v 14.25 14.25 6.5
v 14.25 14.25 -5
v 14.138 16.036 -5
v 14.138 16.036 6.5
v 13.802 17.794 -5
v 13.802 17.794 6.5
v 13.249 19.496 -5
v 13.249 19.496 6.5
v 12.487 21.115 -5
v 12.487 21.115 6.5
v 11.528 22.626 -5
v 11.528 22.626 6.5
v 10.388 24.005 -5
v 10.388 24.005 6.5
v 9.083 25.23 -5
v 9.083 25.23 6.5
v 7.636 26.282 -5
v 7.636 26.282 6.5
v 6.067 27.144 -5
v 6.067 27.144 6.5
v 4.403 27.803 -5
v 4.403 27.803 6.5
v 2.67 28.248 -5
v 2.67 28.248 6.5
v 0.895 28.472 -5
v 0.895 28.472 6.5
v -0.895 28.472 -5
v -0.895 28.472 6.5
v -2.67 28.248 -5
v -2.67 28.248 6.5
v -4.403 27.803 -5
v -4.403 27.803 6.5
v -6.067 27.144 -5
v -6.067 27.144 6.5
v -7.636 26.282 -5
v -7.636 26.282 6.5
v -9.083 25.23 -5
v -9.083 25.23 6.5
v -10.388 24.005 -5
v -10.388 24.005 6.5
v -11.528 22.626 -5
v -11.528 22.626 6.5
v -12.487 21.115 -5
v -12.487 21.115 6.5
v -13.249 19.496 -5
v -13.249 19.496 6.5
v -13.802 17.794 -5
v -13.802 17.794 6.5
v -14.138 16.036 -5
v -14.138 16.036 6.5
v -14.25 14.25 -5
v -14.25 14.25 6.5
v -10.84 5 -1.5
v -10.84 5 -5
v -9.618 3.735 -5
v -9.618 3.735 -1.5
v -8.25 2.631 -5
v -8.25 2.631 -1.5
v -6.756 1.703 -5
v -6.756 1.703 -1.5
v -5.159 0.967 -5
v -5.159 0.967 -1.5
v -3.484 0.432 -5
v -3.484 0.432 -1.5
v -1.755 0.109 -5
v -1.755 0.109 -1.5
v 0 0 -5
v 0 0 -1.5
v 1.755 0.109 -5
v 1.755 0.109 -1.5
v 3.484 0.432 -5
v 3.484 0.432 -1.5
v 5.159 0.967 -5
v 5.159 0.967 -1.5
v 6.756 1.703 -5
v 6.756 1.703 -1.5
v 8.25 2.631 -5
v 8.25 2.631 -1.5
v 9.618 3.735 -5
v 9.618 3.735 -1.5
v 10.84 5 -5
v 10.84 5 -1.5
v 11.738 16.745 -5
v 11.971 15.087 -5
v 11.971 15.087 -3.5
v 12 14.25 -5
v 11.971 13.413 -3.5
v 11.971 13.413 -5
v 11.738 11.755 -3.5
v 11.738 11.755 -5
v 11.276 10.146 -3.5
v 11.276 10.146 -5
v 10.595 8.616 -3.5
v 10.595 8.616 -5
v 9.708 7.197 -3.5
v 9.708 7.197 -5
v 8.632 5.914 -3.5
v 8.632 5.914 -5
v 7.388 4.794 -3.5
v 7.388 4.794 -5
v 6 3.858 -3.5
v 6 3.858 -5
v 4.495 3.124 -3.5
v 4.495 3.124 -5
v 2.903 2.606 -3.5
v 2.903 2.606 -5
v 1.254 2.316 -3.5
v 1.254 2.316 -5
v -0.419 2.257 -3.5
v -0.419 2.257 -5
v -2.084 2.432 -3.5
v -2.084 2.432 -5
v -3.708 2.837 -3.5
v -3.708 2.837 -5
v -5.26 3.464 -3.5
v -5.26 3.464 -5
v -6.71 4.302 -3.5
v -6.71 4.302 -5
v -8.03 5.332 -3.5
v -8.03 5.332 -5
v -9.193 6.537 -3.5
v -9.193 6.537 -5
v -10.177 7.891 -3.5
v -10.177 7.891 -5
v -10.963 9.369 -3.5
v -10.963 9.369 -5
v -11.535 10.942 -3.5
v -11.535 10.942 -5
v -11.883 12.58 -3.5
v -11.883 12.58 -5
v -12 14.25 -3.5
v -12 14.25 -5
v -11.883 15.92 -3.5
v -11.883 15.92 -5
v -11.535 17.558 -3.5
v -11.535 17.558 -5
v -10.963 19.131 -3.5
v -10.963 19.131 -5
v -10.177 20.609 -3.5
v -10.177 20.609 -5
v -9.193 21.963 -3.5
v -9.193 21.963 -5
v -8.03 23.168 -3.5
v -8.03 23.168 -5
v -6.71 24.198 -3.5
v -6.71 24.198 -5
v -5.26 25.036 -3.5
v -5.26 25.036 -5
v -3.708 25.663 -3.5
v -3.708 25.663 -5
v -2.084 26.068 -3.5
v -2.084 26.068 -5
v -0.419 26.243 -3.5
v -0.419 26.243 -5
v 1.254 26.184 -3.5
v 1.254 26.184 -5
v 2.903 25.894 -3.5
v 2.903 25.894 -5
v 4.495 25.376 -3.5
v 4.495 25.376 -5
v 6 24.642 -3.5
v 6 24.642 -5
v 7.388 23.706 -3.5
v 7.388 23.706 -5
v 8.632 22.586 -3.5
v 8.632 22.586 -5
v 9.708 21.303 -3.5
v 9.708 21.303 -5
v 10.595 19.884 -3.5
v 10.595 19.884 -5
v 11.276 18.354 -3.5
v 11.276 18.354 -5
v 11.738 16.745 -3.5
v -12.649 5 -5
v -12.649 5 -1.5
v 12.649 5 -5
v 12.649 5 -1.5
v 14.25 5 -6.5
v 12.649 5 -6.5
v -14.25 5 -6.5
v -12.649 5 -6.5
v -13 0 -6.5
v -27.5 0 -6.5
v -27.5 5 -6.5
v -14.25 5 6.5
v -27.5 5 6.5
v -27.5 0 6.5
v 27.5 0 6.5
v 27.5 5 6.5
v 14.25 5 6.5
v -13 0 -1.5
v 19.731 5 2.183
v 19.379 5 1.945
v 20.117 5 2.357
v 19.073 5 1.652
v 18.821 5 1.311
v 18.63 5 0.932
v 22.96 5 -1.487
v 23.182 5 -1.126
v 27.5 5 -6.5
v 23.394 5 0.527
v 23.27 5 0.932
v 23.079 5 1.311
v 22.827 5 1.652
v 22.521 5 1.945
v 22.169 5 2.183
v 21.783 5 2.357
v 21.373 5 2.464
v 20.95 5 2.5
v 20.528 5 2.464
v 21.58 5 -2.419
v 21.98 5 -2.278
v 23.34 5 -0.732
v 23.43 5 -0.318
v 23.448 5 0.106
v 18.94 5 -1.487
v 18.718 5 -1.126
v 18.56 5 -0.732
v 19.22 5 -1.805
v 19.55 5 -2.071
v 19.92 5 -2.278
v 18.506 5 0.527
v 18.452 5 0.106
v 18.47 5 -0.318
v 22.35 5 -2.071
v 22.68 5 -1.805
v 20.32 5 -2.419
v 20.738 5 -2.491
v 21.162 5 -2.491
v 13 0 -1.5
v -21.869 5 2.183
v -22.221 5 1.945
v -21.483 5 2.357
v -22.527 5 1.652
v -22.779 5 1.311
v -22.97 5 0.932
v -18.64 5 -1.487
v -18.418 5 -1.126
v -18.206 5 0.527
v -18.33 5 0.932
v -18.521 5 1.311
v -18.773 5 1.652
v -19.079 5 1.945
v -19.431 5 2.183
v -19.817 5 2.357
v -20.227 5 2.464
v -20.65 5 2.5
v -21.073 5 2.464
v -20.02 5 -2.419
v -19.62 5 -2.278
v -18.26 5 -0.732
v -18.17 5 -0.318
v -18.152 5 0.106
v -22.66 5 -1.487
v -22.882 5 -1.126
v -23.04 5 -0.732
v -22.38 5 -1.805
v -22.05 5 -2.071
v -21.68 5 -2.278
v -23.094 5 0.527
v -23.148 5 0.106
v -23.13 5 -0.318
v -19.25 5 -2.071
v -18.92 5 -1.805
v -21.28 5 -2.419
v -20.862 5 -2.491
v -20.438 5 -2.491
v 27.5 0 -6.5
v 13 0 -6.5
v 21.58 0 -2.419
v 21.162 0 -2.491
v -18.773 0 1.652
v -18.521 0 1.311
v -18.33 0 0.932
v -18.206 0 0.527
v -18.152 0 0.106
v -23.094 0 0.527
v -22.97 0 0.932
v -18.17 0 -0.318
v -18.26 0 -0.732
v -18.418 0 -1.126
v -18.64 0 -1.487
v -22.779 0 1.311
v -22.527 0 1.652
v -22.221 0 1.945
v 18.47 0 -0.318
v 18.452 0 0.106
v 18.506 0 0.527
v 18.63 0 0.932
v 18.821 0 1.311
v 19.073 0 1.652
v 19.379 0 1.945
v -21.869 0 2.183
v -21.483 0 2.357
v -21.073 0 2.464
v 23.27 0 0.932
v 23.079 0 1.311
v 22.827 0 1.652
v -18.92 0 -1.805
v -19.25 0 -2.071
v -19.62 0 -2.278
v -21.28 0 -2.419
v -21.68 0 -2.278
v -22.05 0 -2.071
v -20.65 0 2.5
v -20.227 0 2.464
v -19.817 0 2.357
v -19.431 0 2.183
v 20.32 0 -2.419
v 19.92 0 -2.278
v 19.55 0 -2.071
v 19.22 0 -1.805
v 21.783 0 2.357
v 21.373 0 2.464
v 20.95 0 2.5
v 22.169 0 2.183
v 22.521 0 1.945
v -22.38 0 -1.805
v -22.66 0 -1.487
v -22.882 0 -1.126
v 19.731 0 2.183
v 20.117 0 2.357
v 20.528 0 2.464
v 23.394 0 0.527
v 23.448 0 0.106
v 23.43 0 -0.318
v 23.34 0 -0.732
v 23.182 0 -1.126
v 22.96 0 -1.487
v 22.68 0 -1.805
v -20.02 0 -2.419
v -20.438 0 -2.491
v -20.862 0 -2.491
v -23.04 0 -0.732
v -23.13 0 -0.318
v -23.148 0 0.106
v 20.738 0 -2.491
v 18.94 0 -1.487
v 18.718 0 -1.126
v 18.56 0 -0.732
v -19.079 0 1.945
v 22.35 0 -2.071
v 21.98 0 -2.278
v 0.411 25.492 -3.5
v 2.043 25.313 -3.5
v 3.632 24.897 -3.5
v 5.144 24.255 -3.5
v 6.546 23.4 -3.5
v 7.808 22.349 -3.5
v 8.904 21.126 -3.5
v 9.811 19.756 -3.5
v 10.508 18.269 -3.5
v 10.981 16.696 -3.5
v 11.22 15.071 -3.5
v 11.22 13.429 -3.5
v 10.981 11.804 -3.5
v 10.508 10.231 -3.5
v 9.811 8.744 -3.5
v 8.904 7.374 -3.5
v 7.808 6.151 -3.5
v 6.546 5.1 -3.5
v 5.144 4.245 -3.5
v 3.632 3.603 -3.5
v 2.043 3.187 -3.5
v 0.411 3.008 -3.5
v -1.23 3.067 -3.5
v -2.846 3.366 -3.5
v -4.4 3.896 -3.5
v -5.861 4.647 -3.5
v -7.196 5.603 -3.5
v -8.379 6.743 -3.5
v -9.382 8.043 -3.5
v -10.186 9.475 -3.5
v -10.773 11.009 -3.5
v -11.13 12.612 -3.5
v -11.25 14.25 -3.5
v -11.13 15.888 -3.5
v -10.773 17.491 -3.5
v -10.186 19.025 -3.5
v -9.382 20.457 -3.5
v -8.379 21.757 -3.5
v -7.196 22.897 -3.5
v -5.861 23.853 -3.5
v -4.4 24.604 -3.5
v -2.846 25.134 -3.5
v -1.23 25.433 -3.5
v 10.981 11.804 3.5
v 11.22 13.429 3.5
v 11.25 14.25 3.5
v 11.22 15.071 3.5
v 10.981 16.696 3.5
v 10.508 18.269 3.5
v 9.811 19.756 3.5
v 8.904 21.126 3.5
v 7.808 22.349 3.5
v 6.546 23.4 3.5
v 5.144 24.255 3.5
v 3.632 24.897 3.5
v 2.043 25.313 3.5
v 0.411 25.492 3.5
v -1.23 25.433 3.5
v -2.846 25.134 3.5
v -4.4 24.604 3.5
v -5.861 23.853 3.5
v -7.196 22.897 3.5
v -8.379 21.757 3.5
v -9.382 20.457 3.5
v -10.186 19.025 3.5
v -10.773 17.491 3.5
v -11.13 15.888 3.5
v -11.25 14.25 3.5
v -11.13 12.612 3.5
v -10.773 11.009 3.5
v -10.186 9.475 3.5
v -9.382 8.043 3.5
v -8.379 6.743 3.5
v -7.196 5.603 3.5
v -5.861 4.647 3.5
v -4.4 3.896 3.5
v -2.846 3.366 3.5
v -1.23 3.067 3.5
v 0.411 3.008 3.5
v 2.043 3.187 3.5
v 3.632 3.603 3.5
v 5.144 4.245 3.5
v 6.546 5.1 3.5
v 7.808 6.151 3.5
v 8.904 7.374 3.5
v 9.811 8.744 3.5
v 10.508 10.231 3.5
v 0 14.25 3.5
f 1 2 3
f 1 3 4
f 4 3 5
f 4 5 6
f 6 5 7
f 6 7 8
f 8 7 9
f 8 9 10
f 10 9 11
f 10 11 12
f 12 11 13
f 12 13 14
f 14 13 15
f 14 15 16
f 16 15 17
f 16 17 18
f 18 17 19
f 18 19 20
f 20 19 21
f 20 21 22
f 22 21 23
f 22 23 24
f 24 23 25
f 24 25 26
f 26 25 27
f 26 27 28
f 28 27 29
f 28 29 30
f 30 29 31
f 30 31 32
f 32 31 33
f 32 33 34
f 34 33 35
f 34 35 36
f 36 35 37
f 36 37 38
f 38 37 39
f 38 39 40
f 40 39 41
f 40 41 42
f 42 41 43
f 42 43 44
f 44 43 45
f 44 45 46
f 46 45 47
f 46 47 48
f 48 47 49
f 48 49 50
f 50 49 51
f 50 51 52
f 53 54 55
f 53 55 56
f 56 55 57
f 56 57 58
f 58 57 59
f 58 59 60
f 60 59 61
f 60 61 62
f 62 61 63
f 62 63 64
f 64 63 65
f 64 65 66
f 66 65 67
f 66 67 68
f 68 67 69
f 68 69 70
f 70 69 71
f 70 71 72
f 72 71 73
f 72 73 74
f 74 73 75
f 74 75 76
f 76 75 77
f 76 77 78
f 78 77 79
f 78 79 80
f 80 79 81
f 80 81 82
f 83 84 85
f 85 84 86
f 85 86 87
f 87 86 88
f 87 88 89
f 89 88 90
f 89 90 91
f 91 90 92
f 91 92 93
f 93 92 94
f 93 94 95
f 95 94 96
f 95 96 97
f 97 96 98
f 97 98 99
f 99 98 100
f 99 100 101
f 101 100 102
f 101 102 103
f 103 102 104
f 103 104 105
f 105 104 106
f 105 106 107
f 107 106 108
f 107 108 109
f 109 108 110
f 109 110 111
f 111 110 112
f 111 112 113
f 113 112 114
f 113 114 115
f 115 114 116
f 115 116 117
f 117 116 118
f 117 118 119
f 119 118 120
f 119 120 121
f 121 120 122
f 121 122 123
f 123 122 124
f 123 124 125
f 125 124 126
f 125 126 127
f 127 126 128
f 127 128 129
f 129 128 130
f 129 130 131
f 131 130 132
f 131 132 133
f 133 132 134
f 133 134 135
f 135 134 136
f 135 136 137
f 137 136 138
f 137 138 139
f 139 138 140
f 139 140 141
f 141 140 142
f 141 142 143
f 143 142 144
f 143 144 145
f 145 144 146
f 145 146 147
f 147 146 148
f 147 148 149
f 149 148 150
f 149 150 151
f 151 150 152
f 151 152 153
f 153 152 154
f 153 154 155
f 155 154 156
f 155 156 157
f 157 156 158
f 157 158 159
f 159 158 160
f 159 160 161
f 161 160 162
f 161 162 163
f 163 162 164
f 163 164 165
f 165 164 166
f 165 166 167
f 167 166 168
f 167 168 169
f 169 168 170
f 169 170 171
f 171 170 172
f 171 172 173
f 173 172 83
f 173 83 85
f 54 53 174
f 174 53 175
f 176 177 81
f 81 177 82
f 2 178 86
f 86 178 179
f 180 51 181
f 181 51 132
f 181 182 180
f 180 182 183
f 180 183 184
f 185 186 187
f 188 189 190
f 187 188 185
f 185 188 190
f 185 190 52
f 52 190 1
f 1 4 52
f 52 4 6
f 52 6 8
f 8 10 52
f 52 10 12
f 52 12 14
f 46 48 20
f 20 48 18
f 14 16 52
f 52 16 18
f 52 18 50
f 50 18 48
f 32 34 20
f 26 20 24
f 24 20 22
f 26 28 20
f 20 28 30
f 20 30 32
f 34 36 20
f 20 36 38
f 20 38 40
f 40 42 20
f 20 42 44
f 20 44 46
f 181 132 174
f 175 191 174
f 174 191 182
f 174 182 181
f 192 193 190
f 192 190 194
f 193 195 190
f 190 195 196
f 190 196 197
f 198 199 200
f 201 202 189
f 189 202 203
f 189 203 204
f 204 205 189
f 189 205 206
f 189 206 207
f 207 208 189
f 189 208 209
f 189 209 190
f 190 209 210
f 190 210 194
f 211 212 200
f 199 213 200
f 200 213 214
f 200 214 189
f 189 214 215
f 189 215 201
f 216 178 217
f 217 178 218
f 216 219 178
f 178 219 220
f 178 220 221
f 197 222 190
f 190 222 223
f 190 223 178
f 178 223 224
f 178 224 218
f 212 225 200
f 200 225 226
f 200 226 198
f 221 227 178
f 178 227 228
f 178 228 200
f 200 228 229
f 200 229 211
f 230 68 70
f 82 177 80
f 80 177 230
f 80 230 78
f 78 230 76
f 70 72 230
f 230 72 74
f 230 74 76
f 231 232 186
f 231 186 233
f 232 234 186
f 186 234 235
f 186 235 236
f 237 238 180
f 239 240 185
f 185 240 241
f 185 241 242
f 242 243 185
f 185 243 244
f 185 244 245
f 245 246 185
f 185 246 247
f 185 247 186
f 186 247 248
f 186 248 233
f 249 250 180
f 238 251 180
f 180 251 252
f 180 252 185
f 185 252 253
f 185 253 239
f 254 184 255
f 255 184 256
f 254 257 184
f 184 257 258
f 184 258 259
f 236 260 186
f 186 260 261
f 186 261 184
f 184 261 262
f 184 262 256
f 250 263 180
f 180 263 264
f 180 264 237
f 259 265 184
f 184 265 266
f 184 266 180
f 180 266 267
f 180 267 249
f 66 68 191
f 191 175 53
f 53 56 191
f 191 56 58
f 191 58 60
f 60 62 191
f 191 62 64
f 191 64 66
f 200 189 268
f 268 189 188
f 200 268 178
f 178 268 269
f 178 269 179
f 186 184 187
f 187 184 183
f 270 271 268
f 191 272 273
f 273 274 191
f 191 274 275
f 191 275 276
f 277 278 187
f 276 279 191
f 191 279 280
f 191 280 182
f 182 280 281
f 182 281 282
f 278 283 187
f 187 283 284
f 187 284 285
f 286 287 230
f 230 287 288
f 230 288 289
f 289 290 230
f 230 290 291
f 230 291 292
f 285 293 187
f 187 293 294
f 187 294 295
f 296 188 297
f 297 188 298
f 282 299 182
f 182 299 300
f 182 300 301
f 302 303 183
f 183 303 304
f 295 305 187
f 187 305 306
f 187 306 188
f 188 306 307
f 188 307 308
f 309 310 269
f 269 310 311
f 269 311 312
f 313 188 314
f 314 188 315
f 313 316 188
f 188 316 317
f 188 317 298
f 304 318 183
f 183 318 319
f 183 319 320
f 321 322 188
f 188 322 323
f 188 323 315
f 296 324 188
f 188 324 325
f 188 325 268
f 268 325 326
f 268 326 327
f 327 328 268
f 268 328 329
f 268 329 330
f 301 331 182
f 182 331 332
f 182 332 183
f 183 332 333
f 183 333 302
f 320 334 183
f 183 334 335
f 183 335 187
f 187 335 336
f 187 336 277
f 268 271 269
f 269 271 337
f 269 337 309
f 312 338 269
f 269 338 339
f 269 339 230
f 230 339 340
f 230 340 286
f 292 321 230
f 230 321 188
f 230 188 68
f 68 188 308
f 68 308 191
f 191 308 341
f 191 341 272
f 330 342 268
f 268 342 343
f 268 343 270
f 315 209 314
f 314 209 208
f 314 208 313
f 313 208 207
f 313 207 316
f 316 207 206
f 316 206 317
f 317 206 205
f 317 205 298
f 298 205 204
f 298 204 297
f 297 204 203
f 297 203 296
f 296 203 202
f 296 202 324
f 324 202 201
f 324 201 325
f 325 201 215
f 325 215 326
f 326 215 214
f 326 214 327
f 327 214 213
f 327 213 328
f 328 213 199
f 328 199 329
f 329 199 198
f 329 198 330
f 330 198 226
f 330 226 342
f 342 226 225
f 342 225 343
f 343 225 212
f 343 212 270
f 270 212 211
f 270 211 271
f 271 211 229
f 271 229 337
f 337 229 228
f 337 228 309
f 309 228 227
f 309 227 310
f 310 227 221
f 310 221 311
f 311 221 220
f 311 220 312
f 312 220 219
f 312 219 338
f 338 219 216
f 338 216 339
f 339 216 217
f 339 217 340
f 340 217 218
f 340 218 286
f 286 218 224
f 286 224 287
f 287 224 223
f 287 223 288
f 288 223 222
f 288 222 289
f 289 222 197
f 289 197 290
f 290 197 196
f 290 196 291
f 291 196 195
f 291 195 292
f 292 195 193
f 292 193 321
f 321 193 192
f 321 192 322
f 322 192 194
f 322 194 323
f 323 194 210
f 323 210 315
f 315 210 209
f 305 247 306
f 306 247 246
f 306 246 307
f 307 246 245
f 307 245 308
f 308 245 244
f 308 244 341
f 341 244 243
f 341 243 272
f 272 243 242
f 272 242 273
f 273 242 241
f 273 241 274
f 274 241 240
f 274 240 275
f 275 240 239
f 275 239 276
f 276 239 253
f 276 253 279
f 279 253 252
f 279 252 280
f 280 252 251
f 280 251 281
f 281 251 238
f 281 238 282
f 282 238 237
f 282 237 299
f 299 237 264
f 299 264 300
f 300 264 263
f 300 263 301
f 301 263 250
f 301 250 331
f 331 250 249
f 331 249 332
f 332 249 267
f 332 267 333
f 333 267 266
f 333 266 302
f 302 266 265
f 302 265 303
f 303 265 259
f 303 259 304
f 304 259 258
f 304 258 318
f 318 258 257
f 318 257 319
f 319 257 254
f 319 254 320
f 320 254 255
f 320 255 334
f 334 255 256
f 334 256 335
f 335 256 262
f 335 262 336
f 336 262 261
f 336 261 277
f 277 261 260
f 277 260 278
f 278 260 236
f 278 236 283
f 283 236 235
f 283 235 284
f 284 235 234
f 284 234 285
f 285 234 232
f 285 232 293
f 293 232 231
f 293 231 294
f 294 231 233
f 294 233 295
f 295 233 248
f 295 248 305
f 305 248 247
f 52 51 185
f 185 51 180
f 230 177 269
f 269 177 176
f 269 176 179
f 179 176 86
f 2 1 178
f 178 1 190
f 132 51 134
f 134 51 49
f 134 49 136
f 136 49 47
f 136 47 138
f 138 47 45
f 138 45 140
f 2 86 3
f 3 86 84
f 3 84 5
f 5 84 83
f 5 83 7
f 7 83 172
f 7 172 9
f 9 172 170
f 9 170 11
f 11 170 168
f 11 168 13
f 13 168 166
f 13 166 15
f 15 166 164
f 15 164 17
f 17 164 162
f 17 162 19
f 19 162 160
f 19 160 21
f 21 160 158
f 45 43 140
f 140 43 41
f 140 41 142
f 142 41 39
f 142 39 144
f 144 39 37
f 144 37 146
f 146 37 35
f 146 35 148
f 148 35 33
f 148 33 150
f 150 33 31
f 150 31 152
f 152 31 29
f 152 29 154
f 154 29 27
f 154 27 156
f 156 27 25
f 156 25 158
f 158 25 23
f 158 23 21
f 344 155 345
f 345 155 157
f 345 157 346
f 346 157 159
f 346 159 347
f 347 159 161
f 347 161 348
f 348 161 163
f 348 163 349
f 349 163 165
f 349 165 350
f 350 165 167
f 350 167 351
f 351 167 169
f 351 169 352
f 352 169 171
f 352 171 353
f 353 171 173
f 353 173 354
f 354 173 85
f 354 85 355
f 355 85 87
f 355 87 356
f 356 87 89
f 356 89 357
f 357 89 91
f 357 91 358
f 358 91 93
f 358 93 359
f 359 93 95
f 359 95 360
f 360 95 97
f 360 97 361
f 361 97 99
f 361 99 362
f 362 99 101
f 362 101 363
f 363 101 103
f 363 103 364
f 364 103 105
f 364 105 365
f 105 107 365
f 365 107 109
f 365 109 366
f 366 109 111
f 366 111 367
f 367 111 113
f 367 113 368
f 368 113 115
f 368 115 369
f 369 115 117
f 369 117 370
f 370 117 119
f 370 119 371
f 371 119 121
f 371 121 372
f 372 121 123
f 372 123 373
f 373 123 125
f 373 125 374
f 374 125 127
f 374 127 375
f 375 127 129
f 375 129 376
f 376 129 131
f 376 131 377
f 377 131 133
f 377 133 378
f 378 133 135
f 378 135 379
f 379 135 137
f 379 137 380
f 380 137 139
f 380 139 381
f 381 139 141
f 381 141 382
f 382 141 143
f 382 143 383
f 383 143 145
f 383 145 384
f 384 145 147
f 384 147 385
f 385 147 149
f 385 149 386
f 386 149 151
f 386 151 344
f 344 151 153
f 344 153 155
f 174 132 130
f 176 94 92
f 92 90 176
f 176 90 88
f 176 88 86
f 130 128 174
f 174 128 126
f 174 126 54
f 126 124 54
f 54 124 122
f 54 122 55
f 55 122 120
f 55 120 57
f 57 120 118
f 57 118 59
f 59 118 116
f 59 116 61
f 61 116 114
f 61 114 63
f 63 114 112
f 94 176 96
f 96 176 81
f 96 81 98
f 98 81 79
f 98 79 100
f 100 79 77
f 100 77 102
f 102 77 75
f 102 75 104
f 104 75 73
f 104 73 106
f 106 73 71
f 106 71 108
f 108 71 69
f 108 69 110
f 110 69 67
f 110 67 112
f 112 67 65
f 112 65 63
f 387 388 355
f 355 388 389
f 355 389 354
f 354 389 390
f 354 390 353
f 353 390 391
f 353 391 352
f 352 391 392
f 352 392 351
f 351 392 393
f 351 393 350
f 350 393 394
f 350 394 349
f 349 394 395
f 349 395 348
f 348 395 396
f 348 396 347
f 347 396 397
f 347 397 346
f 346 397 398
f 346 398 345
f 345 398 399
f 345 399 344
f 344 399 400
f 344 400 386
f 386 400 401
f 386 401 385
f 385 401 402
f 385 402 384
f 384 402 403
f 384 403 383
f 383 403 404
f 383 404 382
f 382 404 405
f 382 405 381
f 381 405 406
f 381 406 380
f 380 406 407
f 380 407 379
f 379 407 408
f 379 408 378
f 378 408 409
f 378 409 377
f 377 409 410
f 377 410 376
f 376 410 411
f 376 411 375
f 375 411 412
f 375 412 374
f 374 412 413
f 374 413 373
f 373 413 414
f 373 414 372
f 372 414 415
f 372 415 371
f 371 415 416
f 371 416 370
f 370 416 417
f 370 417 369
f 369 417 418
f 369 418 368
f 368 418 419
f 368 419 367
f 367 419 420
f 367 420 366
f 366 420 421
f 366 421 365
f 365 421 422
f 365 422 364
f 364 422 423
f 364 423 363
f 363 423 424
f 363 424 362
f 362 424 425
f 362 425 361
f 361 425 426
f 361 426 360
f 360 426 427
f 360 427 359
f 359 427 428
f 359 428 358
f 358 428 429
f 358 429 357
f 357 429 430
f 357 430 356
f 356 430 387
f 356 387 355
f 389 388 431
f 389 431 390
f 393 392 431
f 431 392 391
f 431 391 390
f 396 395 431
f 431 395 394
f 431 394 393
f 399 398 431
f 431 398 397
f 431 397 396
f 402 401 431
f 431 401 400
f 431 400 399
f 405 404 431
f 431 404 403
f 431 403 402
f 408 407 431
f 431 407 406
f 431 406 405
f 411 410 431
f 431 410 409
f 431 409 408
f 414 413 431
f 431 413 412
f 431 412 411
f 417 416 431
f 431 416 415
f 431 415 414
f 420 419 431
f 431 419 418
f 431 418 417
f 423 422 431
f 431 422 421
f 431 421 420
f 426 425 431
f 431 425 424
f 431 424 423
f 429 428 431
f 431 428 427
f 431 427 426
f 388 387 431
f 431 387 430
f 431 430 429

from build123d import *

# Parameters (mm, degrees)
CROQUIS1_W                   = 55
CROQUIS1_H                   = 13
SALIENTE_EXTRUIR1_DEPTH      = 5
CROQUIS2_R                   = 2.5
CORTAR_EXTRUIR1_DEPTH        = 5
CROQUIS3_W                   = 26
CROQUIS3_H                   = 5
CORTAR_EXTRUIR2_DEPTH        = 5
SALIENTE_EXTRUIR2_DEPTH      = 5
SALIENTE_EXTRUIR2_DEPTH_BACK = 8
CROQUIS4_R                   = 14.25
CROQUIS5_R                   = 12
CORTAR_EXTRUIR3_DEPTH        = 1
CORTAR_EXTRUIR4_START        = -1
CROQUIS6_R                   = 12
CORTAR_EXTRUIR4_DEPTH        = 1
SALIENTE_EXTRUIR3_DEPTH      = 1
SALIENTE_EXTRUIR3_DEPTH_BACK = 12
SALIENTE_EXTRUIR4_DEPTH      = 13
CROQUIS9_R                   = 11
CORTAR_EXTRUIR5_DEPTH        = 13
CROQUIS10_W                  = 30.554627906
CROQUIS10_H                  = 17.725009208
CORTAR_EXTRUIR6_DEPTH        = 1.5
CROQUIS11_W                  = 31.627471091
CROQUIS11_H                  = 18.560833894
CORTAR_EXTRUIR7_DEPTH        = 1.5
CORTAR_EXTRUIR8_START        = -1.5
CROQUIS13_R                  = 12
CORTAR_EXTRUIR8_DEPTH        = 1.5
CROQUIS14_R                  = 12
CORTAR_EXTRUIR10_DEPTH       = 1.5
CORTAR_EXTRUIR11_START       = 5
CROQUIS15_R                  = 12
CORTAR_EXTRUIR11_DEPTH       = 5
CROQUIS16_R                  = 12
CORTAR_EXTRUIR12_DEPTH       = 5
CORTAR_EXTRUIR13_DEPTH       = 20
CORTAR_EXTRUIR14_DEPTH       = 36
CORTAR_EXTRUIR15_DEPTH       = 36
CORTAR_EXTRUIR16_DEPTH       = 23
CROQUIS22_R                  = 12
SALIENTE_EXTRUIR6_DEPTH      = 1.5
CROQUIS23_R                  = 14.25
SALIENTE_EXTRUIR7_DEPTH      = 1.5
SALIENTE_EXTRUIR9_DEPTH      = 5
SALIENTE_EXTRUIR10_DEPTH     = 5
SALIENTE_EXTRUIR11_START     = -1.5
SALIENTE_EXTRUIR11_DEPTH     = 1.5
SALIENTE_EXTRUIR12_START     = -1.5
SALIENTE_EXTRUIR12_DEPTH     = 1.5
SALIENTE_EXTRUIR13_START     = -10
CROQUIS30_R                  = 11.125
CROQUIS30_R_2                = 11
SALIENTE_EXTRUIR13_DEPTH     = 10
CROQUIS31_R                  = 11.125
CORTAR_EXTRUIR17_DEPTH       = 7
CROQUIS32_R                  = 11.25
CORTAR_EXTRUIR18_DEPTH       = 7


with BuildPart() as part:
    # Croquis1 → Saliente-Extruir1 (new body)
    with BuildSketch(Plane(origin=(0, 0, 0), x_dir=(1, 0, 0), z_dir=(0, 1, 0))):
        Rectangle(CROQUIS1_W, CROQUIS1_H)
    extrude(amount=SALIENTE_EXTRUIR1_DEPTH)

    # Croquis2 → Cortar-Extruir1 (cut)
    with BuildSketch(Plane(origin=(0, 5, 0), x_dir=(1, 0, 0), z_dir=(0, 1, 0))):
        with Locations(Location((-20.65, 0, 0), (0, 0, 270))):
            Circle(CROQUIS2_R)
        with Locations(Location((20.95, 0, 0), (0, 0, 270))):
            Circle(CROQUIS2_R)
    extrude(amount=-CORTAR_EXTRUIR1_DEPTH, mode=Mode.SUBTRACT)

    # Croquis3 → Cortar-Extruir2 (cut)
    with BuildSketch(Plane(origin=(0, 5, 0), x_dir=(1, 0, 0), z_dir=(0, 1, 0))):
        with Locations((0, 4)):
            Rectangle(CROQUIS3_W, CROQUIS3_H)
        with Locations((0, -4)):
            Rectangle(CROQUIS3_W, CROQUIS3_H)
    extrude(amount=-CORTAR_EXTRUIR2_DEPTH, mode=Mode.SUBTRACT)

    # Croquis4 → Saliente-Extruir2 (add, two sides: drawn at the far end of the back side and taken through both)
    with BuildSketch(Plane.XY.offset(1.5).offset(-SALIENTE_EXTRUIR2_DEPTH_BACK)):
        with Locations((0, 14.25)):
            Circle(CROQUIS4_R)
    extrude(amount=SALIENTE_EXTRUIR2_DEPTH + SALIENTE_EXTRUIR2_DEPTH_BACK)

    # Croquis5 → Cortar-Extruir3 (cut)
    with BuildSketch(Plane(origin=(0, 0, -6.5), x_dir=(-1, 0, 0), z_dir=(0, 0, -1))):
        with Locations((0, 14.25)):
            Circle(CROQUIS5_R)
    extrude(amount=-CORTAR_EXTRUIR3_DEPTH, mode=Mode.SUBTRACT)

    # Croquis6 → Cortar-Extruir4 (cut)
    with BuildSketch(Plane.XY.offset(6.5).offset(CORTAR_EXTRUIR4_START)):
        with Locations(Location((0, 14.25, 0), (0, 0, 180))):
            Circle(CROQUIS6_R)
    extrude(amount=CORTAR_EXTRUIR4_DEPTH, mode=Mode.SUBTRACT)

    # Croquis7 → Saliente-Extruir3 (add, two sides: drawn at the far end of the back side and taken through both)
    with BuildSketch(Plane.XY.offset(5.5).offset(-SALIENTE_EXTRUIR3_DEPTH_BACK)):
        Polygon((-12, 14.25), (-13, 0), (-14.25, 5), (-14.25, 14.25), align=None)
        Polygon((12, 14.25), (13, 0), (14.25, 5), (14.25, 14.25), align=None)
    extrude(amount=SALIENTE_EXTRUIR3_DEPTH + SALIENTE_EXTRUIR3_DEPTH_BACK)

    # Croquis8 → Saliente-Extruir4 (add)
    with BuildSketch(Plane.XY.offset(6.5)):
        Polygon((-10.839741694, 5), (-13.183687754, 5), (-12.649122807, 8.463153797), align=None)
        Polygon((12.728523578, 8.463153797), (12.649122807, 5), (10.839741694, 5), align=None)
    extrude(amount=-SALIENTE_EXTRUIR4_DEPTH)

    # Croquis9 → Cortar-Extruir5 (cut)
    with BuildSketch(Plane.XY.offset(5.5)):
        with Locations((0, 14.25)):
            Circle(CROQUIS9_R)
    extrude(amount=-CORTAR_EXTRUIR5_DEPTH, mode=Mode.SUBTRACT)

    # Croquis10 → Cortar-Extruir6 (cut)
    with BuildSketch(Plane(origin=(0, 0, -6.5), x_dir=(-1, 0, 0), z_dir=(0, 0, -1))):
        with Locations((1.027313953, 23.112504604)):
            Rectangle(CROQUIS10_W, CROQUIS10_H)
    extrude(amount=-CORTAR_EXTRUIR6_DEPTH, mode=Mode.SUBTRACT)

    # Croquis11 → Cortar-Extruir7 (cut)
    with BuildSketch(Plane.XY.offset(6.5)):
        with Locations((-1.563735546, 23.530416947)):
            Rectangle(CROQUIS11_W, CROQUIS11_H)
    extrude(amount=-CORTAR_EXTRUIR7_DEPTH, mode=Mode.SUBTRACT)

    # Croquis13 → Cortar-Extruir8 (cut)
    with BuildSketch(Plane.XY.offset(5).offset(CORTAR_EXTRUIR8_START)):
        with Locations((0, 14.25)):
            Circle(CROQUIS13_R)
    extrude(amount=CORTAR_EXTRUIR8_DEPTH, mode=Mode.SUBTRACT)

    # Croquis14 → Cortar-Extruir10 (cut)
    with BuildSketch(Plane(origin=(0, 0, -5), x_dir=(-1, 0, 0), z_dir=(0, 0, -1))):
        with Locations(Location((0, 14.25, 0), (0, 0, 180))):
            Circle(CROQUIS14_R)
    extrude(amount=-CORTAR_EXTRUIR10_DEPTH, mode=Mode.SUBTRACT)

    # Croquis15 → Cortar-Extruir11 (cut)
    with BuildSketch(Plane(origin=(0, 0, -3.5), x_dir=(-1, 0, 0), z_dir=(0, 0, -1)).offset(CORTAR_EXTRUIR11_START)):
        with Locations((0, 14.25)):
            Circle(CROQUIS15_R)
    extrude(amount=-CORTAR_EXTRUIR11_DEPTH, mode=Mode.SUBTRACT)

    # Croquis16 → Cortar-Extruir12 (cut)
    with BuildSketch(Plane.XY.offset(3.5)):
        with Locations(Location((0, 14.25, 0), (0, 0, 180))):
            Circle(CROQUIS16_R)
    extrude(amount=CORTAR_EXTRUIR12_DEPTH, mode=Mode.SUBTRACT)

    # Croquis17 → Cortar-Extruir13 (cut)
    with BuildSketch(Plane.XY.offset(5)):
        Polygon((-12, 14.25), (-13, 0), (13, 0), (12, 14.25), align=None)
    extrude(amount=CORTAR_EXTRUIR13_DEPTH, mode=Mode.SUBTRACT)

    # Croquis18 → Cortar-Extruir14 (cut)
    with BuildSketch(Plane.ZY.offset(14.25)):
        Polygon((5, 14.25), (6.5, 5), (6.5, 14.25), align=None)
    extrude(amount=-CORTAR_EXTRUIR14_DEPTH, mode=Mode.SUBTRACT)

    # Croquis19 → Cortar-Extruir15 (cut)
    with BuildSketch(Plane(origin=(14.25, 0, 0), x_dir=(0, 0, -1), z_dir=(1, 0, 0))):
        Polygon((5, 14.25), (6.5, 5), (6.5, 14.25), align=None)
    extrude(amount=-CORTAR_EXTRUIR15_DEPTH, mode=Mode.SUBTRACT)

    # Croquis20 → Cortar-Extruir16 (cut)
    with BuildSketch(Plane(origin=(0, 0, -5), x_dir=(-1, 0, 0), z_dir=(0, 0, -1))):
        Polygon((-12, 14.25), (-13, 0), (13, 0), (12, 14.25), align=None)
    extrude(amount=CORTAR_EXTRUIR16_DEPTH, mode=Mode.SUBTRACT)

    # Croquis22 → Saliente-Extruir6 (add)
    with BuildSketch(Plane.XY.offset(3.5)):
        with Locations(Location((0, 14.25, 0), (0, 0, 180))):
            Circle(CROQUIS22_R)
    extrude(amount=SALIENTE_EXTRUIR6_DEPTH)

    # Croquis23 → Saliente-Extruir7 (add)
    with BuildSketch(Plane.XY.offset(5)):
        with Locations((0, 14.25)):
            Circle(CROQUIS23_R)
    extrude(amount=SALIENTE_EXTRUIR7_DEPTH)

    # Croquis24 → Saliente-Extruir9 (add)
    with BuildSketch(Plane.XY.offset(1.5)):
        with BuildLine():
            Line((-10.839741694, 5), (-12.649122807, 5))
            Line((-12.649122807, 5), (-13, 0))
            Line((-13, 0), (0, 0))
            ThreePointArc((0, 0), (-5.968668193, 1.310235705), (-10.839741694, 5))
        make_face()
    extrude(amount=SALIENTE_EXTRUIR9_DEPTH)

    # Croquis26 → Saliente-Extruir10 (add)
    with BuildSketch(Plane.XY.offset(1.5)):
        with BuildLine():
            Line((0, 0), (13, 0))
            Line((13, 0), (12.649122807, 5))
            Line((12.649122807, 5), (10.839741694, 5))
            ThreePointArc((10.839741694, 5), (5.968668193, 1.310235705), (0, 0))
        make_face()
    extrude(amount=SALIENTE_EXTRUIR10_DEPTH)

    # Croquis27 → Saliente-Extruir11 (add)
    with BuildSketch(Plane.XY.offset(6.5).offset(SALIENTE_EXTRUIR11_START)):
        with BuildLine():
            Line((-12.649122807, 5), (-10.839741694, 5))
            ThreePointArc((-10.839741694, 5), (-13.370280834, 9.320690674), (-14.25, 14.25))
            Line((-14.25, 14.25), (-14.25, 5))
            Line((-14.25, 5), (-12.649122807, 5))
        make_face()
    extrude(amount=SALIENTE_EXTRUIR11_DEPTH)

    # Croquis28 → Saliente-Extruir12 (add)
    with BuildSketch(Plane.XY.offset(6.5).offset(SALIENTE_EXTRUIR12_START)):
        with BuildLine():
            ThreePointArc((14.25, 14.25), (13.370280834, 9.320690674), (10.839741694, 5))
            Line((10.839741694, 5), (12.649122807, 5))
            Line((12.649122807, 5), (14.25, 5))
            Line((14.25, 5), (14.25, 14.25))
        make_face()
    extrude(amount=SALIENTE_EXTRUIR12_DEPTH)

    # Croquis30 → Saliente-Extruir13 (add)
    with BuildSketch(Plane(origin=(0, 0, -3.5), x_dir=(-1, 0, 0), z_dir=(0, 0, -1)).offset(SALIENTE_EXTRUIR13_START)):
        with Locations((0, 14.25)):
            Circle(CROQUIS30_R)
        with Locations(Location((0, 14.25, 0), (0, 0, 180))):
            Circle(CROQUIS30_R_2, mode=Mode.SUBTRACT)
    extrude(amount=SALIENTE_EXTRUIR13_DEPTH)

    # Croquis31 → Cortar-Extruir17 (cut)
    with BuildSketch(Plane(origin=(0, 0, -3.5), x_dir=(-1, 0, 0), z_dir=(0, 0, -1))):
        with Locations((0, 14.25)):
            Circle(CROQUIS31_R)
    extrude(amount=-CORTAR_EXTRUIR17_DEPTH, mode=Mode.SUBTRACT)

    # Croquis32 → Cortar-Extruir18 (cut)
    with BuildSketch(Plane(origin=(0, 0, -3.5), x_dir=(-1, 0, 0), z_dir=(0, 0, -1))):
        with Locations((0, 14.25)):
            Circle(CROQUIS32_R)
    extrude(amount=-CORTAR_EXTRUIR18_DEPTH, mode=Mode.SUBTRACT)


solid = part.part
